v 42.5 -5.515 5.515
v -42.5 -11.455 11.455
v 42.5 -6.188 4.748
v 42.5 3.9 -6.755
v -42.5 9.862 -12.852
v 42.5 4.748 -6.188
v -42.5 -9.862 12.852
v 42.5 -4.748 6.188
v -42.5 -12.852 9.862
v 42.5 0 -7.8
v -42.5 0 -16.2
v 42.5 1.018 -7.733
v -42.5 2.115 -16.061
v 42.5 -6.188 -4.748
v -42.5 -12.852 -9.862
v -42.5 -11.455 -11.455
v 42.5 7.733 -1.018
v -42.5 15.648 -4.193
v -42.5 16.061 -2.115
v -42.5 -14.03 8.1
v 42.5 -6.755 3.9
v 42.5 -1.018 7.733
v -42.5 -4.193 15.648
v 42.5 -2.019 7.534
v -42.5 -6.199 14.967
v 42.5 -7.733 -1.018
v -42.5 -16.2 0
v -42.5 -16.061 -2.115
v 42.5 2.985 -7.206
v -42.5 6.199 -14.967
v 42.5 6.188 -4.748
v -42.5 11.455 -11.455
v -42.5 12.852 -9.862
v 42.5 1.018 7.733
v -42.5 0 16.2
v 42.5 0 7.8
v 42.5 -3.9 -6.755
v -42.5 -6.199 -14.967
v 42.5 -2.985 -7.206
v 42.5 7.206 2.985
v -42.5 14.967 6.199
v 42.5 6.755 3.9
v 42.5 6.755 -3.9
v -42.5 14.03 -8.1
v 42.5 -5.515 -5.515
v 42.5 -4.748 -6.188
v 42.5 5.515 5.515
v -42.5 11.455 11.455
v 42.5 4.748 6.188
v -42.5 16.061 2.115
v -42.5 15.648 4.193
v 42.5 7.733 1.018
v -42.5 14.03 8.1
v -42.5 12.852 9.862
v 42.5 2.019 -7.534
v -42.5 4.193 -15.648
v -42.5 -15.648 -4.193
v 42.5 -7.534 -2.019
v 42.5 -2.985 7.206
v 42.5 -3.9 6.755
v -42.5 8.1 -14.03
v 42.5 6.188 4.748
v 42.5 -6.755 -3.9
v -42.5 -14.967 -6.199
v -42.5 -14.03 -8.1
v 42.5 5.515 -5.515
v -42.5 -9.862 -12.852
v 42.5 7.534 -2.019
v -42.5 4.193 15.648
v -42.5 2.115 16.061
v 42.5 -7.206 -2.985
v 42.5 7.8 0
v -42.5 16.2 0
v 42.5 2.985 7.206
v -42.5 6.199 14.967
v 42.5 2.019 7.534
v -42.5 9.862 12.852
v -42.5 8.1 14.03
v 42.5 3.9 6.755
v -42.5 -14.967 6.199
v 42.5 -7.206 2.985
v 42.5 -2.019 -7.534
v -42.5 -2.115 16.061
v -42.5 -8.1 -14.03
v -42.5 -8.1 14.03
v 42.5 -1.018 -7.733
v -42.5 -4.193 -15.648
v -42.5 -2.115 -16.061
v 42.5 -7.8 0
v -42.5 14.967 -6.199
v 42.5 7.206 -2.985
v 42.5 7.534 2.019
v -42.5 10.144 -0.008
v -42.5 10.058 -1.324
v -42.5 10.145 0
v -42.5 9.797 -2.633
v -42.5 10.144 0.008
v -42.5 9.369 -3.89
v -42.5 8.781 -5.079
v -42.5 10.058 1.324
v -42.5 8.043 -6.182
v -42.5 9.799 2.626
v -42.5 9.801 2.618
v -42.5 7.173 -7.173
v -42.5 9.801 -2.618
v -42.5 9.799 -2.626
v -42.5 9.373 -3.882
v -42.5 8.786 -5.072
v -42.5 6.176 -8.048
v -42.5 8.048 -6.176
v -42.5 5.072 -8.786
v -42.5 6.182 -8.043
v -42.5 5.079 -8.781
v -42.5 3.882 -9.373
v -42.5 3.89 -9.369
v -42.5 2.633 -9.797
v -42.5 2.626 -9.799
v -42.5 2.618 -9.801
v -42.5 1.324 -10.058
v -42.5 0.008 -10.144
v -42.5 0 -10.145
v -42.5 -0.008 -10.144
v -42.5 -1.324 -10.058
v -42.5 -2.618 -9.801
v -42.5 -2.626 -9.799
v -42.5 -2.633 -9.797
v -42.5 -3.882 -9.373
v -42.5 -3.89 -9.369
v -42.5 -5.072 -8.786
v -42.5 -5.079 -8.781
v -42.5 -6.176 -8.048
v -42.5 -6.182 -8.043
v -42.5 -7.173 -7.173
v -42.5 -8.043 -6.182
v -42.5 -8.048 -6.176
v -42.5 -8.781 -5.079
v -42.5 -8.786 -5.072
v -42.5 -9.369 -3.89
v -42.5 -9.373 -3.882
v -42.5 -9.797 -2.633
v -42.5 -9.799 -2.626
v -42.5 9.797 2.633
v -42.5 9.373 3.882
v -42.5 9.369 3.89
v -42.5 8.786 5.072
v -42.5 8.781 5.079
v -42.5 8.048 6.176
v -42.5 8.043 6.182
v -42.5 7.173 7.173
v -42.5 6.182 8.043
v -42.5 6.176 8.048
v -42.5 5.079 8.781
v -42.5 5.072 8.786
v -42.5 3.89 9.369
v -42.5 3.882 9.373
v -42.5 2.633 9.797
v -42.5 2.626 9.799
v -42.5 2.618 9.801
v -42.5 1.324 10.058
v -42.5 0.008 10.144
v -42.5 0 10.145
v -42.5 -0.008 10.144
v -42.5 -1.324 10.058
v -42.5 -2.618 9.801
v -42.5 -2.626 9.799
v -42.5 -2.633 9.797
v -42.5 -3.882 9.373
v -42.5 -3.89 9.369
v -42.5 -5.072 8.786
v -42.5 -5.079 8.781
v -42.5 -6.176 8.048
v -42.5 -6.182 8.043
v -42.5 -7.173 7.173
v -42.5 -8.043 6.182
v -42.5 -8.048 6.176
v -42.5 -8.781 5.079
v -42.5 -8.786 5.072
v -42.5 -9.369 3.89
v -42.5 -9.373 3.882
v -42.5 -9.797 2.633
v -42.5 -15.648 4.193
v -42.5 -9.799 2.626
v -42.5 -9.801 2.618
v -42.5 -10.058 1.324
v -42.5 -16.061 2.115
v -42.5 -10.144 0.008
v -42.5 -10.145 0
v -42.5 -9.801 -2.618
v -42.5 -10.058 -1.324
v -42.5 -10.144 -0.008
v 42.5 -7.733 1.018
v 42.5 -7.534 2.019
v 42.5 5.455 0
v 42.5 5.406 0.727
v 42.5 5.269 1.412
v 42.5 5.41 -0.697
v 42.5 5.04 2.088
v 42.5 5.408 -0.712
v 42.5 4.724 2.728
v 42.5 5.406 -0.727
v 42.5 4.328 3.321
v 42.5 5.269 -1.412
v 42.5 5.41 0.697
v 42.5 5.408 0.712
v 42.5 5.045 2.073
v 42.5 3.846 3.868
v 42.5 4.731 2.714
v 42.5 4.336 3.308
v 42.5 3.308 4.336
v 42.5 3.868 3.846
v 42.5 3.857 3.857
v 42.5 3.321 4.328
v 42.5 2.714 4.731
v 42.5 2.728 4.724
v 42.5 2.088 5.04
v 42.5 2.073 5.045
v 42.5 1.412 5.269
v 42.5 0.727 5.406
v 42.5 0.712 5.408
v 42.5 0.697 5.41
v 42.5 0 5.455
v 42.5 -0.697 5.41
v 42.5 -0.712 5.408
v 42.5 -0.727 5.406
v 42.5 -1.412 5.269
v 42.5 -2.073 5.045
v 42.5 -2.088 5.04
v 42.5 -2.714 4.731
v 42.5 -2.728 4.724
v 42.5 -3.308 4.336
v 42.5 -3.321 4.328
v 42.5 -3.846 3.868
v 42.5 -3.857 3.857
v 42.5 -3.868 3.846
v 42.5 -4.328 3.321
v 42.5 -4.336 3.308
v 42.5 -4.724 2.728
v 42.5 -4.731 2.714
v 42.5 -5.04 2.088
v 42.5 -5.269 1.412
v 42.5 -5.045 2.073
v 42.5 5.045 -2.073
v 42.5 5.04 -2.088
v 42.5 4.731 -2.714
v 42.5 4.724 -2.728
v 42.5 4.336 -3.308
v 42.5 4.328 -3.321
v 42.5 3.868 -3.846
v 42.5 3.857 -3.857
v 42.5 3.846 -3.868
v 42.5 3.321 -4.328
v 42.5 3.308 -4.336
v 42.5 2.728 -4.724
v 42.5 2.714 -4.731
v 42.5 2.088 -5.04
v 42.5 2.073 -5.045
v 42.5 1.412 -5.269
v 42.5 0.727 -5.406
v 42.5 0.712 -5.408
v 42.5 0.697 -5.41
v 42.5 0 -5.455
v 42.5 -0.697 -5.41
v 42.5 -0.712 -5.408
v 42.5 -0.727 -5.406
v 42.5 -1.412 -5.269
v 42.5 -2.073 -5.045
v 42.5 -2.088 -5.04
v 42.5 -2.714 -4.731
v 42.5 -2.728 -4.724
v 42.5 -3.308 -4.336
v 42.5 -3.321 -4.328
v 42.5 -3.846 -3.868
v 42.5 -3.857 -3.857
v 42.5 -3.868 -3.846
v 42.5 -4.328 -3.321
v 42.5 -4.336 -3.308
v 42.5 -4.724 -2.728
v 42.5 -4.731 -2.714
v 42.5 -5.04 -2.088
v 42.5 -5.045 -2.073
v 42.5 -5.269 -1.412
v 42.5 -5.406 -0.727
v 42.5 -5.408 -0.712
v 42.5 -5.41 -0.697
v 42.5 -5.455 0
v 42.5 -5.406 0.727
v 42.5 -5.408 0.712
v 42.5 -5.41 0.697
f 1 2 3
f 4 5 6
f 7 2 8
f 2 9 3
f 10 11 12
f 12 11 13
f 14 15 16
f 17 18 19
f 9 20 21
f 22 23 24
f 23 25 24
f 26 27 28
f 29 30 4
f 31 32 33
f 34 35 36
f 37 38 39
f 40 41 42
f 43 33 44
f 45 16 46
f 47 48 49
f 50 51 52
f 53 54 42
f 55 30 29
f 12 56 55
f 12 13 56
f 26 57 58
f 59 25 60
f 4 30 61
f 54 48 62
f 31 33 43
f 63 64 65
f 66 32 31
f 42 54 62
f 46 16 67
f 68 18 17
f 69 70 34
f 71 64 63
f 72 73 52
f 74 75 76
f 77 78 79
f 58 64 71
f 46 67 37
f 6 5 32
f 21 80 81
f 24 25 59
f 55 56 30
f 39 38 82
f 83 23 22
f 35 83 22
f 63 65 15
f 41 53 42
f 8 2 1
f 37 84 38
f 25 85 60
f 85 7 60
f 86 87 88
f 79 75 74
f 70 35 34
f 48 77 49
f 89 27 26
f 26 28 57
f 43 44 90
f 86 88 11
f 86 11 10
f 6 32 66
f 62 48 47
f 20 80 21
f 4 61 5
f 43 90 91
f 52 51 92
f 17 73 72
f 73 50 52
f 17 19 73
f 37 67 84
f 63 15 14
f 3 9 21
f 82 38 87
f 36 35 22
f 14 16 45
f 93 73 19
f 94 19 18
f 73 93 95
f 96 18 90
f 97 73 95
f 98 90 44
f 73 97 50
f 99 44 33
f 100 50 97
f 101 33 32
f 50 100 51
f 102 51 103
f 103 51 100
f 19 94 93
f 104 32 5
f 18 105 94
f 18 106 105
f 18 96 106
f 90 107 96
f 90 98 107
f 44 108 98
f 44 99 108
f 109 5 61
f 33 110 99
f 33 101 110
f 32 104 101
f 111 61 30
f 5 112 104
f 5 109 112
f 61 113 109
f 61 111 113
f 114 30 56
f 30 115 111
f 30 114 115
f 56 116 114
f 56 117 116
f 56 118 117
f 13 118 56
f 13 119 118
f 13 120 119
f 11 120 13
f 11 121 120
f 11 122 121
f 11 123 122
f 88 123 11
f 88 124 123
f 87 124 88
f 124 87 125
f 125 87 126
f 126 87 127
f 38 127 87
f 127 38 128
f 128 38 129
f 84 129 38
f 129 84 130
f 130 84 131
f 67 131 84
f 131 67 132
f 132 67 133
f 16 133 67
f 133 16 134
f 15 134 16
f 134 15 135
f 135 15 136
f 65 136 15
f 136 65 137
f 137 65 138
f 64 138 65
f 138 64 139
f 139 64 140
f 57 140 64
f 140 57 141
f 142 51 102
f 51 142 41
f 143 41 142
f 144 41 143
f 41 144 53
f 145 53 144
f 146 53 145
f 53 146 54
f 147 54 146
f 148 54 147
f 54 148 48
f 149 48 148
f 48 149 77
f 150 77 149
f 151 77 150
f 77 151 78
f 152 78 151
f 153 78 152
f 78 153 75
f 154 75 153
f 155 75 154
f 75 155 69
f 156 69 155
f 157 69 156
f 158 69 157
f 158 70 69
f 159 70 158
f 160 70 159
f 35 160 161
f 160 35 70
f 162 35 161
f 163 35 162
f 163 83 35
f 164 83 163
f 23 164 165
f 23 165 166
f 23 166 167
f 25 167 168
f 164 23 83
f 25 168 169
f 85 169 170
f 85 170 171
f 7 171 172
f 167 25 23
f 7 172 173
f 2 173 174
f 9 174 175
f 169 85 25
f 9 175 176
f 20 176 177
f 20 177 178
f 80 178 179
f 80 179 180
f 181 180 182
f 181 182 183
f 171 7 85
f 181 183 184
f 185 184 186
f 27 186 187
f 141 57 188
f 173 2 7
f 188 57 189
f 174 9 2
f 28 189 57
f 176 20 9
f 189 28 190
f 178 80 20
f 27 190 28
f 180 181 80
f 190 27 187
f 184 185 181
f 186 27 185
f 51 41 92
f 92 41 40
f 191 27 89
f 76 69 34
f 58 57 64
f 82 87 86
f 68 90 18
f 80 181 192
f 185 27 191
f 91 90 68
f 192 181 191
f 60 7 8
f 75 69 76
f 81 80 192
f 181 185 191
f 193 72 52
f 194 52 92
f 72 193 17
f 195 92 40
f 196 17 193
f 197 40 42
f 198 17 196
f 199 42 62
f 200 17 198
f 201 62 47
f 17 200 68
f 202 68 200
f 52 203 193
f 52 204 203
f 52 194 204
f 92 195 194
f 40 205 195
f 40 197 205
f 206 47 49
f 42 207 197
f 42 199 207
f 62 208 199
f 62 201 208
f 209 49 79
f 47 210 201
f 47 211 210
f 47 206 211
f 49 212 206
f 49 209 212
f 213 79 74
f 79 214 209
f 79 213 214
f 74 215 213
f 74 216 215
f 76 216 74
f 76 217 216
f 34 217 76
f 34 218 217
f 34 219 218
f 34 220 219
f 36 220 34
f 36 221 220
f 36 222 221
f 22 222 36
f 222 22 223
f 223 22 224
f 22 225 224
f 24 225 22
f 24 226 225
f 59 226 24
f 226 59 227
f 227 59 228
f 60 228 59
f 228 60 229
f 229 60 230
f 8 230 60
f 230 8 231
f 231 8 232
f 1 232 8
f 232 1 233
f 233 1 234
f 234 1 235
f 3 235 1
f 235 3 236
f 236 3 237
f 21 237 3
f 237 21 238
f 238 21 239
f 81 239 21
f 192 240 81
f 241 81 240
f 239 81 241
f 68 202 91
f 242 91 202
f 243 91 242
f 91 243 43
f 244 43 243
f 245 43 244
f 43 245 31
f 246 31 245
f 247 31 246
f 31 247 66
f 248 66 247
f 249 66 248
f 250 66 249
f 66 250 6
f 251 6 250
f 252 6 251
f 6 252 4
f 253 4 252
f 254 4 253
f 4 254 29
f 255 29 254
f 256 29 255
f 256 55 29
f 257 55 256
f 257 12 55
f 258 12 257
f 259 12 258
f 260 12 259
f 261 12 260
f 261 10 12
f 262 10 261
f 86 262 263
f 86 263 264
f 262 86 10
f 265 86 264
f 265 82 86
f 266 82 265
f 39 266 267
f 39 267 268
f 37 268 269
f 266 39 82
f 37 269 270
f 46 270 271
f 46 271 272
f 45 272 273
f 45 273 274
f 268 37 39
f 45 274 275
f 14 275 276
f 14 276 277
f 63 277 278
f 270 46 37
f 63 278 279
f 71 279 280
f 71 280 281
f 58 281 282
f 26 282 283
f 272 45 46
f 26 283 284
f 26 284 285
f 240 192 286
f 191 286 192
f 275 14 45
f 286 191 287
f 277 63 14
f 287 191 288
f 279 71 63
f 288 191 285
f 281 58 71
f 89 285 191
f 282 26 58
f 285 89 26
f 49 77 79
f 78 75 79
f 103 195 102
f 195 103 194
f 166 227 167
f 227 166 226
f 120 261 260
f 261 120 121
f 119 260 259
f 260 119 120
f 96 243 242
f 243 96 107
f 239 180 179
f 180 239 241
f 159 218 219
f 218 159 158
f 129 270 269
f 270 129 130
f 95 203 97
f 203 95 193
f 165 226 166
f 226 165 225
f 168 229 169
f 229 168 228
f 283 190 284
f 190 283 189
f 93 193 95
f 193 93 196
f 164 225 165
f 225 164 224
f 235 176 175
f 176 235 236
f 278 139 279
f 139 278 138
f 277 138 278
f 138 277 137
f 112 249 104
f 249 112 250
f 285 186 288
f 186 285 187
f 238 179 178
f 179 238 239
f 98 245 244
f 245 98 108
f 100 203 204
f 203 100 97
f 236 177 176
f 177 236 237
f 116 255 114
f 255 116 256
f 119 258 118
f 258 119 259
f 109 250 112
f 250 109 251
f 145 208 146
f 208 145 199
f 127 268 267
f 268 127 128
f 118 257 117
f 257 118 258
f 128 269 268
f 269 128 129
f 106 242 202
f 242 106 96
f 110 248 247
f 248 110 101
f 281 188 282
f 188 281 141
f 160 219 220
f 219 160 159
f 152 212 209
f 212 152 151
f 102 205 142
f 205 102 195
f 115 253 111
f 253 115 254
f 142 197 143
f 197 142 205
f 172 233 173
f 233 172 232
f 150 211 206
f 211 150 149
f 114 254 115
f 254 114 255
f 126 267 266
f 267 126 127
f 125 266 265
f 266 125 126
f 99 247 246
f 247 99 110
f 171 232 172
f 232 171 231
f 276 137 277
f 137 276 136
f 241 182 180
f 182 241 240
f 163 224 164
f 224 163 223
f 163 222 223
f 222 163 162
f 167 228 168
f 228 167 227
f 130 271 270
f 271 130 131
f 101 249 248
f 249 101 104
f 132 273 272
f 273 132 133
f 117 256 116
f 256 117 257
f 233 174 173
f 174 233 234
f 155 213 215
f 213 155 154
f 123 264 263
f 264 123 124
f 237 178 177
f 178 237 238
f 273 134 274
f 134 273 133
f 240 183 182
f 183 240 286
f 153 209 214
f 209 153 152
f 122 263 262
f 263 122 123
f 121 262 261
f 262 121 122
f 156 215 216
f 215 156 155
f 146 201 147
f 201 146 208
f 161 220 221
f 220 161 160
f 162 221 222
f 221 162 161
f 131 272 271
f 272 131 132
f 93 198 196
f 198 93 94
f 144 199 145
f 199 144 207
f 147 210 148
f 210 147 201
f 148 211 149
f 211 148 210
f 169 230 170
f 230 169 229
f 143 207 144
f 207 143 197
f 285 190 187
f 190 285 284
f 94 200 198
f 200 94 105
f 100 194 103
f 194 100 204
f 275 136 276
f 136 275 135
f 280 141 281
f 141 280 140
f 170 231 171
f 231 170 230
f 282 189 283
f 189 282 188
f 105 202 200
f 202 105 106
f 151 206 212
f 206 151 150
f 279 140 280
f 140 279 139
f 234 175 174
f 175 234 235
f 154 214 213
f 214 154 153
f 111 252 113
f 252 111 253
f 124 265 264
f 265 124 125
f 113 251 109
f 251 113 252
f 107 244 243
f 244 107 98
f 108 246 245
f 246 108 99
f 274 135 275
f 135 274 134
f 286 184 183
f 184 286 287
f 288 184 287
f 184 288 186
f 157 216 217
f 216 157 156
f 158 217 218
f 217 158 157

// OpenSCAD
// file: common.scad
// Shared Rev A CAD parameters and helper modules.
// Units: millimeters.

$fn = 48;

// Hitec HS-625MG vendor baseline. Verify with calipers before final print.
servo_l = 40.6;
servo_w = 19.8;
servo_h = 37.8;
spline_d = 6.0;
spline_h = 5.0;
servo_mount_slot_l = 9.0;
servo_mount_slot_w = 3.4;
servo_mount_span_x = 49.5;
servo_mount_span_y = 27.5;

// Rev A structure.
base_l = 160;
base_w = 120;
base_t = 6;
wall_t = 6;
mount_t = 5;
outer_w = 95;
outer_h = 95;
outer_depth = 16;
inner_w = 55;
inner_h = 72;
nozzle_l = 85;
nozzle_d = 24;
imu_l = 28;
imu_w = 22;
bearing_d = 8.0;
shaft_d = 4.0;

// Manufacturing assumptions.
m3_clearance_d = 3.4;
bench_fastener_d = 5.0;
fillet_r = 3.0;

module rounded_plate(size_xyz, r=3) {
    hull() {
        for (x=[-size_xyz[0]/2+r, size_xyz[0]/2-r])
            for (y=[-size_xyz[1]/2+r, size_xyz[1]/2-r])
                translate([x, y, 0])
                    cylinder(h=size_xyz[2], r=r, center=true);
    }
}

module slotted_hole(slot_l, slot_w, h=2) {
    hull() {
        translate([-slot_l/2 + slot_w/2, 0, 0])
            cylinder(h=h, d=slot_w, center=true);
        translate([slot_l/2 - slot_w/2, 0, 0])
            cylinder(h=h, d=slot_w, center=true);
    }
}

module servo_mount_plate() {
    difference() {
        rounded_plate([servo_mount_span_x + 18, servo_mount_span_y + 16, mount_t], 2);

        for (x=[-servo_mount_span_x/2, servo_mount_span_x/2])
            for (y=[-servo_mount_span_y/2, servo_mount_span_y/2])
                translate([x, y, 0])
                    slotted_hole(servo_mount_slot_l, servo_mount_slot_w, mount_t + 1);
    }
}

module servo_body_clearance(extra=1.0) {
    cube([servo_l + extra, servo_w + extra, servo_h + extra], center=true);
}

module shaft_clearance(h=120) {
    rotate([90, 0, 0])
        cylinder(h=h, d=shaft_d + 0.6, center=true);
}

module imu_pad() {
    difference() {
        rounded_plate([imu_l + 8, imu_w + 8, 3], 2);
        for (x=[-(imu_l/2 - 4), imu_l/2 - 4])
            for (y=[-(imu_w/2 - 4), imu_w/2 - 4])
                translate([x, y, 0])
                    cylinder(h=4, d=2.2, center=true);
    }
}
// main file
include <common.scad>

// Rev A mock nozzle.
// Print with the centerline vertical for best circularity, or horizontal for faster fit checks.

difference() {
    rotate([0, 90, 0])
        cylinder(h=nozzle_l, d1=nozzle_d*1.35, d2=nozzle_d*0.65, center=true);

    // Hollow core reduces pitch inertia while preserving visual size.
    rotate([0, 90, 0])
        cylinder(h=nozzle_l + 2, d1=nozzle_d*0.85, d2=nozzle_d*0.45, center=true);
}
